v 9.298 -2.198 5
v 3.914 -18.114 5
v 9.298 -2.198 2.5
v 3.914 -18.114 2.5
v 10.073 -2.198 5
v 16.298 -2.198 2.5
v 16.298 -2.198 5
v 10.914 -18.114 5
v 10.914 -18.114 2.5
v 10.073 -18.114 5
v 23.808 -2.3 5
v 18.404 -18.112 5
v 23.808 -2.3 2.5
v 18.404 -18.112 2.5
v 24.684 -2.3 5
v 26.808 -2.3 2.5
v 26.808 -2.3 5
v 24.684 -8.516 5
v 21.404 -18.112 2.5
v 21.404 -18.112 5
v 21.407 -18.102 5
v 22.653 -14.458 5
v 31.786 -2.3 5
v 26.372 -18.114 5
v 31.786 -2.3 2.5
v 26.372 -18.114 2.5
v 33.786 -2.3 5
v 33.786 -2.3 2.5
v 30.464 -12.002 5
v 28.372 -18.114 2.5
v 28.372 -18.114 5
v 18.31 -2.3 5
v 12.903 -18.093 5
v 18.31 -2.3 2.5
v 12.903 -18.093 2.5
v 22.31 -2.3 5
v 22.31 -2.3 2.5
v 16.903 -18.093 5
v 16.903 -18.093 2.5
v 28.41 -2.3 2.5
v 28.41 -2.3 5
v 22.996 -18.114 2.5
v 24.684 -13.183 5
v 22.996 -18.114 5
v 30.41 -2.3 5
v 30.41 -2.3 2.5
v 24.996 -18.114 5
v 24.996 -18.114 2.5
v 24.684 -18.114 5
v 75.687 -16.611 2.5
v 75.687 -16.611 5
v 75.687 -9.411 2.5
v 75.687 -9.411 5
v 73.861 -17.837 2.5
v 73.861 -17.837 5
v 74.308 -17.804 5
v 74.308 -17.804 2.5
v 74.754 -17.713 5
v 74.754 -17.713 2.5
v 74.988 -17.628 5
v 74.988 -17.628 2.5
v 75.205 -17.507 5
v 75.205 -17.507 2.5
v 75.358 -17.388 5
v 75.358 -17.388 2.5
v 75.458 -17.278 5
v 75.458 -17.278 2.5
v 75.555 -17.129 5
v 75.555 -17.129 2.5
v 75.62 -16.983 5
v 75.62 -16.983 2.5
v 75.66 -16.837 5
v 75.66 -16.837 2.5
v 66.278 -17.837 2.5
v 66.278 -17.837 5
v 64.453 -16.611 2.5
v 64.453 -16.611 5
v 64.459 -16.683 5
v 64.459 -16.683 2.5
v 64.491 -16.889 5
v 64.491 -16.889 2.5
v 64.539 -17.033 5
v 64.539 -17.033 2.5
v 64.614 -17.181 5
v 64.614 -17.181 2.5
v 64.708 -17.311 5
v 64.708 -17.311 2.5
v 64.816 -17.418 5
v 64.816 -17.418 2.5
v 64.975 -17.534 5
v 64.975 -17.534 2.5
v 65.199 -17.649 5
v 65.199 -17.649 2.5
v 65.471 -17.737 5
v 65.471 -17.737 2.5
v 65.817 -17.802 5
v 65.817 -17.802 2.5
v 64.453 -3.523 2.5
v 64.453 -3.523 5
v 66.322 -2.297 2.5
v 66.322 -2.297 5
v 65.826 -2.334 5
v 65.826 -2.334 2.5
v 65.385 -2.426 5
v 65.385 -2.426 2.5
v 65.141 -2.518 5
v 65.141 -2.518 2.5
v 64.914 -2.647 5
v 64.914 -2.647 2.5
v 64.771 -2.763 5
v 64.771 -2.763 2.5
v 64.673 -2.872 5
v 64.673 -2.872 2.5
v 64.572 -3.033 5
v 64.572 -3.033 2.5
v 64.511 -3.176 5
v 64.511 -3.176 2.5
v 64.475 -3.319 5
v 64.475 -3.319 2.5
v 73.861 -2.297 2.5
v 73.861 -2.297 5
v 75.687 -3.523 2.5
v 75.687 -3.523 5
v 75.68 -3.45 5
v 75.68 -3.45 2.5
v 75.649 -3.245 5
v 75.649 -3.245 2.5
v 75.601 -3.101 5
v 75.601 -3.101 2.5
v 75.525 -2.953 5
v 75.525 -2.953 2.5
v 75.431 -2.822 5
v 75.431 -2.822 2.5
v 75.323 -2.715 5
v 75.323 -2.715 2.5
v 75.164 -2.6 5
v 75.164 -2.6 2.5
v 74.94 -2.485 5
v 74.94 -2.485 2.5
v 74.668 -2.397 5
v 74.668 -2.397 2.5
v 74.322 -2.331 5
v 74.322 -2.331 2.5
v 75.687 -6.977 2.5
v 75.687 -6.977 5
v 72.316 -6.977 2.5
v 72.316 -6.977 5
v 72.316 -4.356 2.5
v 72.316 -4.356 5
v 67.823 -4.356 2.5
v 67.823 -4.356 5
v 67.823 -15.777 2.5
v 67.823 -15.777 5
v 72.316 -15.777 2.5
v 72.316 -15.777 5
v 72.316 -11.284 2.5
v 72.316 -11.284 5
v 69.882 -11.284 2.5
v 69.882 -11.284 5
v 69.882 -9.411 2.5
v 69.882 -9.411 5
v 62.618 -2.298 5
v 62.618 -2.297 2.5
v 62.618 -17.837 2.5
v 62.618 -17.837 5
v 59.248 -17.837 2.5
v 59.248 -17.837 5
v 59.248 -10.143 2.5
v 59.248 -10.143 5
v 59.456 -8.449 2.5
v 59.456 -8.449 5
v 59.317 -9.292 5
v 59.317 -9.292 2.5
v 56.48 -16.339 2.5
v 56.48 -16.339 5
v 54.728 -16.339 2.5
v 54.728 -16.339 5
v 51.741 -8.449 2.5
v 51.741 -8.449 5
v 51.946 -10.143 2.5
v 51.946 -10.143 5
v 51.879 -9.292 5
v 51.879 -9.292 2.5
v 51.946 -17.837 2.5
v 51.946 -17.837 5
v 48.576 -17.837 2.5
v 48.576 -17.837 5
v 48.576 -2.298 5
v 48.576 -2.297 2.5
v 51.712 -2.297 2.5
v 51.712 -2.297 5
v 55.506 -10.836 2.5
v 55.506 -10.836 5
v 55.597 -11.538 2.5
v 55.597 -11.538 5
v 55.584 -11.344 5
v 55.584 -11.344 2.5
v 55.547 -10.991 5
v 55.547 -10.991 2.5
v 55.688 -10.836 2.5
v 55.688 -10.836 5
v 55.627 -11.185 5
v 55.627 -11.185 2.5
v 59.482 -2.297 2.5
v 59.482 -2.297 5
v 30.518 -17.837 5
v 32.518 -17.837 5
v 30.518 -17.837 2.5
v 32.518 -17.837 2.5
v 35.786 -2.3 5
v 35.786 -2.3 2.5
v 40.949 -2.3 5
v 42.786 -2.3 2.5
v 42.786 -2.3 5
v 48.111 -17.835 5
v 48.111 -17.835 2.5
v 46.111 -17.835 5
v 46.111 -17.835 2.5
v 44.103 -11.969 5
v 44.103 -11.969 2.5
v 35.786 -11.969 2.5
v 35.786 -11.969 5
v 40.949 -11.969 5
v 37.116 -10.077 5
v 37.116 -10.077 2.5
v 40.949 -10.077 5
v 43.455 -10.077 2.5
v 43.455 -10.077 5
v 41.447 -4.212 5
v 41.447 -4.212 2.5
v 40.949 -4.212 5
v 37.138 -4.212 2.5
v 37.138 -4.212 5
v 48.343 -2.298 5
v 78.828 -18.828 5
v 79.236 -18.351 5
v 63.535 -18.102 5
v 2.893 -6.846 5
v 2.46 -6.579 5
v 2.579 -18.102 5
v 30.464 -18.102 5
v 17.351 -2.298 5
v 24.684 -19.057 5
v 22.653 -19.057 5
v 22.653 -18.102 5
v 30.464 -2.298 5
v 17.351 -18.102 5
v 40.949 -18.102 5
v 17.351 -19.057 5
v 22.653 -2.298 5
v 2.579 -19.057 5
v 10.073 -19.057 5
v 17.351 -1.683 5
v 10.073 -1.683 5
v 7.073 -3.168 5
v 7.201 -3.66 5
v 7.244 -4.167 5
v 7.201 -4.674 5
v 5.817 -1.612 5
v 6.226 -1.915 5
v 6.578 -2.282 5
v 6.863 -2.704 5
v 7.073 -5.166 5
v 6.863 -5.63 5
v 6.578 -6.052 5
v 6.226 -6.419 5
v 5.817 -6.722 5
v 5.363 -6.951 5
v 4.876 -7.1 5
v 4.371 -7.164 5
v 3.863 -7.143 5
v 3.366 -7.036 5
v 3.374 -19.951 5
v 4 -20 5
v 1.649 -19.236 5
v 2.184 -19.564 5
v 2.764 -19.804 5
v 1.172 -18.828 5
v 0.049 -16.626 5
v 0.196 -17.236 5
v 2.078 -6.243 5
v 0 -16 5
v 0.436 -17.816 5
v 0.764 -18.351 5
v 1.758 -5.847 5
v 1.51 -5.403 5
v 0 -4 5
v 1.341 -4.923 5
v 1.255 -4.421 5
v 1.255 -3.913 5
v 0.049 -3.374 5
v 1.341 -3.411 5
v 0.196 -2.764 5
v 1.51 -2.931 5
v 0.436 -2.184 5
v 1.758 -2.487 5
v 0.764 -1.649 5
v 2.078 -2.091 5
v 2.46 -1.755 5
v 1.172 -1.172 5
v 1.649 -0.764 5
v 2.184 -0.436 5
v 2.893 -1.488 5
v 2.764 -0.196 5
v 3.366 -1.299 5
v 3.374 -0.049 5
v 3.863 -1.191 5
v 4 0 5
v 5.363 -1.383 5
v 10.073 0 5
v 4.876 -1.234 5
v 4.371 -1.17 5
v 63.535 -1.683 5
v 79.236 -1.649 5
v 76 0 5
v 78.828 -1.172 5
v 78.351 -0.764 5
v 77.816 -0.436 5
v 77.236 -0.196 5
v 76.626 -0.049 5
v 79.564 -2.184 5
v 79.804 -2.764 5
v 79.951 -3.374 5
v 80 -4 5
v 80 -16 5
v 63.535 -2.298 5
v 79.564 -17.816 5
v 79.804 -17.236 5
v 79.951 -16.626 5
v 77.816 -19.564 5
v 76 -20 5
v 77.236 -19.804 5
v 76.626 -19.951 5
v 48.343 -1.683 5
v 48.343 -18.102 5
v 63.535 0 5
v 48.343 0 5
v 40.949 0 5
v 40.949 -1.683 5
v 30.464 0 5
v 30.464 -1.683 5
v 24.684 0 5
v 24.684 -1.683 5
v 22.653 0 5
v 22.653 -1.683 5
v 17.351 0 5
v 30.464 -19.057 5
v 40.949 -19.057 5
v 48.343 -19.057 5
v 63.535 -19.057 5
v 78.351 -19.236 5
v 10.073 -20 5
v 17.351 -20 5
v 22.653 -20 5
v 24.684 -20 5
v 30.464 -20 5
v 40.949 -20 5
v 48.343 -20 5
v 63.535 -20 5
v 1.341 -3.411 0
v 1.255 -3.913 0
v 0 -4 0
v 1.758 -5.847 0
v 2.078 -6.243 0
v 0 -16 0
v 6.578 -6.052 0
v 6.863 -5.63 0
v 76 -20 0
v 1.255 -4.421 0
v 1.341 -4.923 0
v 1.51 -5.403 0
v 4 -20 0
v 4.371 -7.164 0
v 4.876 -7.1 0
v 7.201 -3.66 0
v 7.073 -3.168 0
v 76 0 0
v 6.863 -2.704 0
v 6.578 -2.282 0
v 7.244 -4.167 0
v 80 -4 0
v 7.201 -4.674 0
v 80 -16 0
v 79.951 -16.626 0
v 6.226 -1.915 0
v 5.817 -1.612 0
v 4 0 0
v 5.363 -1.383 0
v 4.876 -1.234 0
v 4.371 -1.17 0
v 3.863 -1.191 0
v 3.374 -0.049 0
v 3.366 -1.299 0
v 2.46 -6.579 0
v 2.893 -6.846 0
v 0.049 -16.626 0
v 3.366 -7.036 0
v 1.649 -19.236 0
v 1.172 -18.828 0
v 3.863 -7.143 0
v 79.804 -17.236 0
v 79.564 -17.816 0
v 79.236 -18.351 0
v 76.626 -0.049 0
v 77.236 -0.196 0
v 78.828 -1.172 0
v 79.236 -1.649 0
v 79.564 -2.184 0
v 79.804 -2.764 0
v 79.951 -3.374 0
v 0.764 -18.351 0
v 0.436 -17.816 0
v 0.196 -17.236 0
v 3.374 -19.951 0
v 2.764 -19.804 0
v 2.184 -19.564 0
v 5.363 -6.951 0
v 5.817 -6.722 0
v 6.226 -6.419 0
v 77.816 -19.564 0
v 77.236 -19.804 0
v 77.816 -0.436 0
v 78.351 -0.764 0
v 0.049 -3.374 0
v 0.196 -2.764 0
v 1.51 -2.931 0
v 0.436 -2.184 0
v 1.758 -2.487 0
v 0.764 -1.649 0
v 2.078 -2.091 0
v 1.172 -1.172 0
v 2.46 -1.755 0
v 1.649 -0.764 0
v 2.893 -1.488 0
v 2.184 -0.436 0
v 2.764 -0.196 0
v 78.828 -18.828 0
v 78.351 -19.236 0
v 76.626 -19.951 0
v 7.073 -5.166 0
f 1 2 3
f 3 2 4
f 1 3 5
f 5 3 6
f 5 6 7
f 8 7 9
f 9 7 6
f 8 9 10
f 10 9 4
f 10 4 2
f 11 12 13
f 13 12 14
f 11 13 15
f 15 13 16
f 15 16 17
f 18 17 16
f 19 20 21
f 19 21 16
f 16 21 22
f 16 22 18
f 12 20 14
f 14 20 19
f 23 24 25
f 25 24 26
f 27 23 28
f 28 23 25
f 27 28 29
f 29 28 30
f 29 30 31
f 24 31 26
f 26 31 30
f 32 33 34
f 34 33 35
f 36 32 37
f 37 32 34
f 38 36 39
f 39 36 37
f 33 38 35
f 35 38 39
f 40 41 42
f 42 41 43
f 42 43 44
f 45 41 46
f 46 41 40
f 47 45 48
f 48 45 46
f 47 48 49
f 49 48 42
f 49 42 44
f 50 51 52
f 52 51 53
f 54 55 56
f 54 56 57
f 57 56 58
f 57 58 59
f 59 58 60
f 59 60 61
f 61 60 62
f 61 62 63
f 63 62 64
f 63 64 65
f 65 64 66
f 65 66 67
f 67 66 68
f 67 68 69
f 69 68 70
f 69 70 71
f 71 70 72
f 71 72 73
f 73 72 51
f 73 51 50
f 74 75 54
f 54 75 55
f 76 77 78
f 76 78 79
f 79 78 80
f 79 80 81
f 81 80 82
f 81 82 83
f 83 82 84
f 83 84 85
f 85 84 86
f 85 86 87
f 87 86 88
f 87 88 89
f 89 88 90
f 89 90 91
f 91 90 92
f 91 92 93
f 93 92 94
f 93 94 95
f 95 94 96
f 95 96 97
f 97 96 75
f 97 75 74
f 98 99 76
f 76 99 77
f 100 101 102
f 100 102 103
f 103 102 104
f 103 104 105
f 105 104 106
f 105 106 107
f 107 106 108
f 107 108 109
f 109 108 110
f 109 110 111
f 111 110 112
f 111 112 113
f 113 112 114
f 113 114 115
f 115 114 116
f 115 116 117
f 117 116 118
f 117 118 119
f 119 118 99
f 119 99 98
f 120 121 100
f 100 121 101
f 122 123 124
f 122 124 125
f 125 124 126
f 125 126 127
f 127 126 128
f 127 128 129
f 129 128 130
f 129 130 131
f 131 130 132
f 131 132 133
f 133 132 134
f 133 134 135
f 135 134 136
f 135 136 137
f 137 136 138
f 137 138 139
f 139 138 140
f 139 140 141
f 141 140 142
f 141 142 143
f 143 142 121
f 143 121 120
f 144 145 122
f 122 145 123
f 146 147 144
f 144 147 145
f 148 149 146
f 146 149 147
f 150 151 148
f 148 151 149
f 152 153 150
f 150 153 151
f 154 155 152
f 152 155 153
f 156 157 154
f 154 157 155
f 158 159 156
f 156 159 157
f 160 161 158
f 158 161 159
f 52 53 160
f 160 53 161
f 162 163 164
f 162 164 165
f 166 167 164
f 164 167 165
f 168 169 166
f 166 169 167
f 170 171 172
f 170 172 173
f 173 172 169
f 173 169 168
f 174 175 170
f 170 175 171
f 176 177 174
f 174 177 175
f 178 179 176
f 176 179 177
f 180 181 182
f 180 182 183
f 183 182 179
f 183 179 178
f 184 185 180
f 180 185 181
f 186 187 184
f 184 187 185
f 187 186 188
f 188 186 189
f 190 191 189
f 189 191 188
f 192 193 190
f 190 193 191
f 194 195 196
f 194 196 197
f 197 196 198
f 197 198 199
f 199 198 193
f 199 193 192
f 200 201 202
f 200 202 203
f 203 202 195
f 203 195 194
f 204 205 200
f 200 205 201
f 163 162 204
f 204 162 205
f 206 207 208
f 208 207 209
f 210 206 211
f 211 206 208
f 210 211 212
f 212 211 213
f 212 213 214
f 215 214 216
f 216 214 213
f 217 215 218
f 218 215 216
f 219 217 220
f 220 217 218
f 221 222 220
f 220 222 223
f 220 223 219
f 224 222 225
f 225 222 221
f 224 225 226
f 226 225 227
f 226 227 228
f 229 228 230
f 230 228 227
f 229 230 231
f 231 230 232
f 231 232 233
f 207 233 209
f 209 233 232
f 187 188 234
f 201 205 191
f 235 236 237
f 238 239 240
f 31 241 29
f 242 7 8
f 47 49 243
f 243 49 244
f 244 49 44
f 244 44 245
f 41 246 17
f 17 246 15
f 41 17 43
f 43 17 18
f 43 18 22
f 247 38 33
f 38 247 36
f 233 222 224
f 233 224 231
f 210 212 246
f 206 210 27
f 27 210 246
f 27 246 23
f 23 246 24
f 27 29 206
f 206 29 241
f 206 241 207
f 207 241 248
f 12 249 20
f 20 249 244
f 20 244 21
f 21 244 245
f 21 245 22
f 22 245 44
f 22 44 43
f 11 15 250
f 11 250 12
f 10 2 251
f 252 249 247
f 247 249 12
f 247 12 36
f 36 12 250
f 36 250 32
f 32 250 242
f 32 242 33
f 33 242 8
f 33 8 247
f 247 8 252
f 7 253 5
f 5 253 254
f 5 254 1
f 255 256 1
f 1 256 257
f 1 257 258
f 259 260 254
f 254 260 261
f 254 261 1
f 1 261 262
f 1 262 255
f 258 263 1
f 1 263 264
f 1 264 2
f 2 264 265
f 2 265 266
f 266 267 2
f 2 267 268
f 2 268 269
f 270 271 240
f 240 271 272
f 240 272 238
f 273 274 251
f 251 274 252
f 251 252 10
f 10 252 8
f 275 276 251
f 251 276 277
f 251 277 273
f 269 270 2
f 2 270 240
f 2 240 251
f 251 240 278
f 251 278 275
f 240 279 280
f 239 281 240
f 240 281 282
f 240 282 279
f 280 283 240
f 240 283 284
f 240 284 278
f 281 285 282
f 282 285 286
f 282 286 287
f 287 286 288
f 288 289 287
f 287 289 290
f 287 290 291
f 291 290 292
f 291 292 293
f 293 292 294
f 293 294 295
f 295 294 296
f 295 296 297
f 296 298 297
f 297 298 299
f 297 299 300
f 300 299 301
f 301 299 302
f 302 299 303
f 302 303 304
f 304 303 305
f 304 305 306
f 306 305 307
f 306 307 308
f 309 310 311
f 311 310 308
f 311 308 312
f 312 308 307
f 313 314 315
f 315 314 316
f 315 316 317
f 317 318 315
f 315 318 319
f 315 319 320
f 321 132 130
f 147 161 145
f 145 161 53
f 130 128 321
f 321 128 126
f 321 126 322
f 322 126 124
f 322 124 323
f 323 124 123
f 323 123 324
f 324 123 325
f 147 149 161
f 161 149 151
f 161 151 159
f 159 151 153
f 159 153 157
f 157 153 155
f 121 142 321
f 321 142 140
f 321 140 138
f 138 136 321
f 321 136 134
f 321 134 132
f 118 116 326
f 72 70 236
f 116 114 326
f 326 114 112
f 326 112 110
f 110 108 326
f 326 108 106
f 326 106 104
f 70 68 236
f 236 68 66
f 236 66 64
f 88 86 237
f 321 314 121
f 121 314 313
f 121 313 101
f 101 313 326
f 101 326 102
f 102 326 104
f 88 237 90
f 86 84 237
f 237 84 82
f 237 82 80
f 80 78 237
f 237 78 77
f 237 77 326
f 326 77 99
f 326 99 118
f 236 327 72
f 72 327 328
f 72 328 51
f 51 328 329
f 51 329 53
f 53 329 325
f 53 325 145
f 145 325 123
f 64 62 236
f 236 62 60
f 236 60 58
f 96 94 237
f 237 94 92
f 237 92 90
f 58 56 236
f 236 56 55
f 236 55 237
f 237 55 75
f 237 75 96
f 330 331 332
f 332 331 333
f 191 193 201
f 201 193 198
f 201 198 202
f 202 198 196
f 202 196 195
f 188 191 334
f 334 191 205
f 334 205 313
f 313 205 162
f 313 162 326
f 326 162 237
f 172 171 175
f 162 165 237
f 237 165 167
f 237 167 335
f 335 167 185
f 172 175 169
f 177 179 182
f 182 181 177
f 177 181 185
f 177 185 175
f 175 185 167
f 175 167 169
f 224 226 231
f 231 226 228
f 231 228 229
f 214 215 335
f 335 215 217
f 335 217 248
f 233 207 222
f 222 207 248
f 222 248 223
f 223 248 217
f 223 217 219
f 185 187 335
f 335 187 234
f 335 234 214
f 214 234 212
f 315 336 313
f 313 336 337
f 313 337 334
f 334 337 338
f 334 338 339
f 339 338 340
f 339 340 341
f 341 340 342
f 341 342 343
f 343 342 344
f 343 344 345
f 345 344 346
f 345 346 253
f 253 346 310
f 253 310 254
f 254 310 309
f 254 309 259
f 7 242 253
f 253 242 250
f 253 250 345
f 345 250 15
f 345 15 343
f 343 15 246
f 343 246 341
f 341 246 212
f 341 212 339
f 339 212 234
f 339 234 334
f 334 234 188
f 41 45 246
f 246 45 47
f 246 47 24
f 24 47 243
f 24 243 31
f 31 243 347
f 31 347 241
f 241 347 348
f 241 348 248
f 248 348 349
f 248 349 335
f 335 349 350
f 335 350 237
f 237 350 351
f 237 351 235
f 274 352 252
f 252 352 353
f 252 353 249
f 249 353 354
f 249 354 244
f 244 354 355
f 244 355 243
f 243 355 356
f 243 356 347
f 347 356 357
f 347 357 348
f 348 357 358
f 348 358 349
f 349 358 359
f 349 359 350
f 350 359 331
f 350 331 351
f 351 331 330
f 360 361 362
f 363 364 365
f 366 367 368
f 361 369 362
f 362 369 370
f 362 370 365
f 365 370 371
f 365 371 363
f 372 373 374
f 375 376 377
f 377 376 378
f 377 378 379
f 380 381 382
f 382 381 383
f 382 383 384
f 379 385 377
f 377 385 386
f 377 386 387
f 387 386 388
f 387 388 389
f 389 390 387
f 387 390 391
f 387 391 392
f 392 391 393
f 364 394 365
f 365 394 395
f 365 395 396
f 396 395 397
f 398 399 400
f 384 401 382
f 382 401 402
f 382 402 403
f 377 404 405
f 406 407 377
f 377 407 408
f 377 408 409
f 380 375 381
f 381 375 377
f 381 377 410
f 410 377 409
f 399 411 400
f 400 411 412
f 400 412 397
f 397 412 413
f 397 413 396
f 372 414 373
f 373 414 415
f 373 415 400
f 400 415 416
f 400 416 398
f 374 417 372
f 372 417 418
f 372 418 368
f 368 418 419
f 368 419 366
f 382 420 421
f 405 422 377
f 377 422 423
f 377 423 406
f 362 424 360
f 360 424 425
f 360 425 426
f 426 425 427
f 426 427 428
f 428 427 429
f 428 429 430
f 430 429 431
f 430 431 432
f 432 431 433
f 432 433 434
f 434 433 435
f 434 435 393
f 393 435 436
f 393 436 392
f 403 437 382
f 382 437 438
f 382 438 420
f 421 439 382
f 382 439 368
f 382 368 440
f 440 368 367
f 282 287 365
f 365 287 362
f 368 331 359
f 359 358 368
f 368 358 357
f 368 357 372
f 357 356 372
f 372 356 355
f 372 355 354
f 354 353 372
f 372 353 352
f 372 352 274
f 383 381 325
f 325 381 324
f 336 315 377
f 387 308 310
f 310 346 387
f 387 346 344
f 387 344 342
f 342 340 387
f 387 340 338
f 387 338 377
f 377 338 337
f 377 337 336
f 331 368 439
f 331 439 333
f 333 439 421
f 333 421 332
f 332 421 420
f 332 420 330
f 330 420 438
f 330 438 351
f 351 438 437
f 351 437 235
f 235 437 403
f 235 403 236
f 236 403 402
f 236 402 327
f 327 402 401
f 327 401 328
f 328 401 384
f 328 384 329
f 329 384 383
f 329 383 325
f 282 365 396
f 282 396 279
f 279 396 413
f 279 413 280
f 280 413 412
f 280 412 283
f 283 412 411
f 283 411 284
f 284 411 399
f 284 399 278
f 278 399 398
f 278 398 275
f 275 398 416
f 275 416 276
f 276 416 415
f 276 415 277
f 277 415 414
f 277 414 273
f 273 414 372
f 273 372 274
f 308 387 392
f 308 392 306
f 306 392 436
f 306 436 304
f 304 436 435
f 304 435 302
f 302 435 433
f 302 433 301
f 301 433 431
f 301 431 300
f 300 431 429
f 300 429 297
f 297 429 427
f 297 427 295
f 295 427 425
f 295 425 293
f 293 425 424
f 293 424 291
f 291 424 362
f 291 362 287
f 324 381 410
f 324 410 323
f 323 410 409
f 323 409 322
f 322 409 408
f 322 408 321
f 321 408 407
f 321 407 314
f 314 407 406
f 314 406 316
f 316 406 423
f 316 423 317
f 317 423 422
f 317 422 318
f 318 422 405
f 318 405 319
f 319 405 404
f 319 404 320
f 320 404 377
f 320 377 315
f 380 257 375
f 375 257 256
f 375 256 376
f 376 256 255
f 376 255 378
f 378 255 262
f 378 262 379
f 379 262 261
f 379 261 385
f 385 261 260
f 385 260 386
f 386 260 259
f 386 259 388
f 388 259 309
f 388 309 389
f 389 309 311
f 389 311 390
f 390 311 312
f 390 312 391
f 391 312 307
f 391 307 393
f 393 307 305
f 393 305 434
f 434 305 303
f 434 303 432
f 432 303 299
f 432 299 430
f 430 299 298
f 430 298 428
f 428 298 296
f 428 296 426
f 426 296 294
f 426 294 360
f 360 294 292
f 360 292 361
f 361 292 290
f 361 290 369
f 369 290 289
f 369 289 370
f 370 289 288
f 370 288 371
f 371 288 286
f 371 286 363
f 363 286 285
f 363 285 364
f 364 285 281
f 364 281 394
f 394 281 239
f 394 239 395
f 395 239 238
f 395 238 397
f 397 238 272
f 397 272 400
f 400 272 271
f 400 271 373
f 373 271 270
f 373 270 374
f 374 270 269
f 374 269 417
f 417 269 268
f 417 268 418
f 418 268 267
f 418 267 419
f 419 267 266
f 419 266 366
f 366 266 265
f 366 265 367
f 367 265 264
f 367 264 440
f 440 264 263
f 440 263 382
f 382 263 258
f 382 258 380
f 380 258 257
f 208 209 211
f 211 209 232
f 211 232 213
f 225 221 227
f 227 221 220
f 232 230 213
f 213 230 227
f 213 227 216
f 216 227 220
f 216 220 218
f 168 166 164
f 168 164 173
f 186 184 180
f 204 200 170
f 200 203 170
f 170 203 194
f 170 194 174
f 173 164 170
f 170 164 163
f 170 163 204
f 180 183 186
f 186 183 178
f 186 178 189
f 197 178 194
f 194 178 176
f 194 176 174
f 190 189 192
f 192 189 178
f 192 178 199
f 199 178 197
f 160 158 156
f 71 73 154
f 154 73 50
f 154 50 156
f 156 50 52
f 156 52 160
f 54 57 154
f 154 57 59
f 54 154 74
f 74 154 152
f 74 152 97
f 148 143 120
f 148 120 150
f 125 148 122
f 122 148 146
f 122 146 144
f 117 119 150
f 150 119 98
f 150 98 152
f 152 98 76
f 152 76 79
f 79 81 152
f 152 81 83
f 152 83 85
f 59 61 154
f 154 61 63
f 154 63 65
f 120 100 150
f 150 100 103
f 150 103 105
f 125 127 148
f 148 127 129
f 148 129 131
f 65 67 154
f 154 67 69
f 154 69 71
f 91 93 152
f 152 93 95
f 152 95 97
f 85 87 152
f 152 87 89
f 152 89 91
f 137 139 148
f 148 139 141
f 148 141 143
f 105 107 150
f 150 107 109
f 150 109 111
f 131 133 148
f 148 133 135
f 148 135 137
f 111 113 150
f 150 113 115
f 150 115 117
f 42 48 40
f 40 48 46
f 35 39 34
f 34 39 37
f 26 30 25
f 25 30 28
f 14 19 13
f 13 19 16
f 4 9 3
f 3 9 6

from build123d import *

# Parameters (mm, degrees)
ESQUISSE1_W                  = 80
ESQUISSE1_H                  = 20
BOSS_EXTRU_1_DEPTH           = 5
CONG_1_R                     = 4
ENL_V_MAT_EXTRU_1_DEPTH      = 83.613558209
ENL_V_START                  = -5
ENL_V_MAT_EXTRU_2_DEPTH      = 5
ESQUISSE11_W                 = 13.611032385
ESQUISSE11_H                 = 17.64061434
BOSS_EXTRU_8_DEPTH           = 5
ENL_V_MAT_EXTRU_3_DEPTH      = 83.613558336
ENL_V_MAT_EXTRU_3_DEPTH_BACK = 83.613558336
ESQUISSE13_R                 = 3
ENL_V_MAT_EXTRU_4_DEPTH      = 33
BOSS_EXTRU_9_DEPTH           = 2.5


# Read off the part's stored shape, not the designer's step: Enlèv. mat.-Extru.2
with BuildPart() as part:
    # Esquisse1 → Boss.-Extru.1 (new body)
    with BuildSketch(Plane.XY):
        with Locations((40, -10)):
            Rectangle(ESQUISSE1_W, ESQUISSE1_H)
    extrude(amount=BOSS_EXTRU_1_DEPTH)

    # Congé1
    cong_1_edges = [part.edges().sort_by_distance(p)[0] for p in [
        (0, 0, 2.5),
        (80, 0, 2.5),
        (80, -20, 2.5),
        (0, -20, 2.5),
    ]]
    fillet(cong_1_edges, radius=CONG_1_R)

    # Esquisse2 → Enlèv. mat.-Extru.1 (cut, through all)
    with BuildSketch(Plane.XY.offset(5)):
        Polygon((28.410040172, -2.300084773), (30.410040172, -2.300084773), (24.995829866, -18.113699025), (22.995829866, -18.113699025), align=None)
        Polygon((9.298142424, -2.198086037), (16.298142424, -2.198086037), (10.914062948, -18.113699025), (3.914062948, -18.113699025), align=None)
        Polygon((18.309829725, -2.300084773), (22.309829725, -2.300084773), (16.902589817, -18.093340154), (12.902589817, -18.093340154), align=None)
        Polygon((23.808061727, -2.300084773), (26.808061727, -2.300084773), (21.404325417, -18.111661936), (18.404325417, -18.111661936), align=None)
        Polygon((31.786127586, -2.300084773), (33.786127586, -2.300084773), (28.371917279, -18.113699025), (26.371917279, -18.113699025), align=None)
    extrude(amount=-ENL_V_MAT_EXTRU_1_DEPTH, mode=Mode.SUBTRACT)

    # Enlèv. mat.-Extru.2 outline → Enlèv. mat.-Extru.2 (cut)
    # profile 1 of 3: a face of its own
    with BuildSketch(Plane.XY.offset(5).offset(ENL_V_START)):
        with BuildLine():
            add(Edge.make_bspline(
                [(75.686567024, -16.611023442), (75.678643784, -16.704663886), (75.663447013, -16.884266233), (75.563839443, -17.132408637), (75.415616385, -17.347383223), (75.204262037, -17.518269705), (74.945020643, -17.657920052), (74.629763147, -17.753299102), (74.263391467, -17.817731699), (74.000846179, -17.830167685), (73.861085096, -17.83678775)],
                knots=[0, 0, 0, 0, 0.114098337, 0.218840581, 0.322174175, 0.429434412, 0.547100708, 0.679564678, 0.829422238, 1, 1, 1, 1], degree=3))
            Line((75.686567024, -16.611023442), (75.686567024, -9.411486545))
            Line((75.686567024, -9.411486545), (69.882470639, -9.411486545))
            Line((69.882470639, -9.411486545), (69.882470639, -11.283775701))
            Line((69.882470639, -11.283775701), (72.316446542, -11.283775701))
            Line((72.316446542, -11.283775701), (72.316446542, -15.777269677))
            Line((72.316446542, -15.777269677), (67.822952566, -15.777269677))
            Line((67.822952566, -15.777269677), (67.822952566, -4.356305822))
            Line((67.822952566, -4.356305822), (72.316446542, -4.356305822))
            Line((72.316446542, -4.356305822), (72.316446542, -6.977510641))
            Line((72.316446542, -6.977510641), (75.686567024, -6.977510641))
            Line((75.686567024, -6.977510641), (75.686567024, -3.522552057))
            add(Edge.make_bspline(
                [(73.861085096, -2.29678775), (74.000846179, -2.303407815), (74.263391467, -2.3158438), (74.629763147, -2.380276397), (74.945020643, -2.475655447), (75.204262037, -2.615305794), (75.415616385, -2.786192276), (75.563839443, -3.001166862), (75.663447013, -3.249309266), (75.678643784, -3.428911613), (75.686567024, -3.522552057)],
                knots=[0, 0, 0, 0, 0.170577762, 0.320435322, 0.452899292, 0.570565588, 0.677825825, 0.781159419, 0.885901663, 1, 1, 1, 1], degree=3))
            Line((73.861085096, -2.29678775), (66.322195789, -2.29678775))
            add(Edge.make_bspline(
                [(64.452832084, -3.522552057), (64.460490101, -3.428813179), (64.475207603, -3.248661832), (64.578900626, -3.001012416), (64.72992953, -2.785012839), (64.947387079, -2.615412784), (65.212124175, -2.475706721), (65.534969931, -2.379572165), (65.910264022, -2.316247539), (66.179534857, -2.303527098), (66.322195789, -2.29678775)],
                knots=[0, 0, 0, 0, 0.112348161, 0.215915455, 0.318343111, 0.425762474, 0.543690884, 0.676356302, 0.828532073, 1, 1, 1, 1], degree=3))
            Line((64.452832084, -3.522552057), (64.452832084, -16.611023442))
            add(Edge.make_bspline(
                [(66.278314012, -17.83678775), (66.138552929, -17.830167685), (65.876007642, -17.817731699), (65.509635961, -17.753299102), (65.194378466, -17.657920052), (64.935137072, -17.518269705), (64.723782723, -17.347383223), (64.575559665, -17.132408637), (64.475952096, -16.884266233), (64.460755324, -16.704663886), (64.452832084, -16.611023442)],
                knots=[0, 0, 0, 0, 0.170577762, 0.320435322, 0.452899292, 0.570565588, 0.677825825, 0.781159419, 0.885901663, 1, 1, 1, 1], degree=3))
            Line((66.278314012, -17.83678775), (73.861085096, -17.83678775))
        make_face()
    # profile 2 of 3: a face of its own
    with BuildSketch(Plane.XY.offset(5).offset(ENL_V_START)):
        with BuildLine():
            add(Edge.make_bspline(
                [(59.247868229, -10.142849497), (59.250113416, -10.031576234), (59.255029992, -9.787906808), (59.301768342, -9.394005261), (59.364432817, -8.9400039), (59.423938248, -8.619443962), (59.455575307, -8.4490129)],
                knots=[0, 0, 0, 0, 0.195301478, 0.427676852, 0.695714808, 1, 1, 1, 1], degree=3))
            Line((59.247868229, -10.142849497), (59.247868229, -17.83678775))
            Line((59.247868229, -17.83678775), (62.617988711, -17.83678775))
            Line((62.617988711, -17.83678775), (62.617988711, -2.29678775))
            Line((62.617988711, -2.29678775), (59.481904374, -2.29678775))
            Line((59.481904374, -2.29678775), (55.68759338, -10.836181575))
            add(Edge.make_bspline(
                [(55.596904374, -11.538290009), (55.59815665, -11.492405908), (55.600881716, -11.392557927), (55.62162629, -11.229918497), (55.645376833, -11.040932864), (55.672949182, -10.907206292), (55.68759338, -10.836181575)],
                knots=[0, 0, 0, 0, 0.19413449, 0.422454333, 0.693254547, 1, 1, 1, 1], degree=3))
            add(Edge.make_bspline(
                [(55.506215368, -10.836181575), (55.516865461, -10.868148772), (55.54346006, -10.947974815), (55.561126156, -11.099283482), (55.582536457, -11.300899182), (55.59176432, -11.45336457), (55.596904374, -11.538290009)],
                knots=[0, 0, 0, 0, 0.142095852, 0.354830918, 0.640631437, 1, 1, 1, 1], degree=3))
            Line((55.506215368, -10.836181575), (51.711904374, -2.29678775))
            Line((51.711904374, -2.29678775), (48.575820036, -2.29678775))
            Line((48.575820036, -2.29678775), (48.575820036, -17.83678775))
            Line((48.575820036, -17.83678775), (51.945940518, -17.83678775))
            Line((51.945940518, -17.83678775), (51.945940518, -10.142849497))
            add(Edge.make_bspline(
                [(51.741158892, -8.4490129), (51.77262663, -8.62239324), (51.831532725, -8.946952903), (51.895555168, -9.402629403), (51.938009232, -9.793916754), (51.94345609, -10.033548389), (51.945940518, -10.142849497)],
                knots=[0, 0, 0, 0, 0.309420385, 0.579220093, 0.808073296, 1, 1, 1, 1], degree=3))
            Line((51.741158892, -8.4490129), (54.728045187, -16.338956424))
            Line((54.728045187, -16.338956424), (56.480390819, -16.338956424))
            Line((56.480390819, -16.338956424), (59.455575307, -8.4490129))
        make_face()
    # profile 3 of 3: a face of its own
    with BuildSketch(Plane.XY.offset(5).offset(ENL_V_START)):
        Polygon((44.119771843, -17.83678775), (47.489892325, -17.83678775), (43.019801964, -2.29678775), (39.439048952, -2.29678775), (34.945554976, -17.795831424), (34.945554976, -17.83678775), (38.315675458, -17.83678775), (39.023634795, -15.028354015), (43.41766341, -15.028354015), align=None)
        Polygon((41.217723651, -5.921422539), (42.923262054, -12.968835942), (39.488781633, -12.968835942), align=None, mode=Mode.SUBTRACT)
    extrude(amount=ENL_V_MAT_EXTRU_2_DEPTH, mode=Mode.SUBTRACT)

    # Esquisse11 → Boss.-Extru.8 (add)
    with BuildSketch(Plane.XY.offset(5)):
        with Locations((41.097921838, -10.121676789)):
            Rectangle(ESQUISSE11_W, ESQUISSE11_H)
    extrude(amount=-BOSS_EXTRU_8_DEPTH)

    # Esquisse12 → Enlèv. mat.-Extru.3 (cut, two sides: drawn at the far end of the back side and taken through both)
    with BuildSketch(Plane.XY.offset(5).offset(-ENL_V_MAT_EXTRU_3_DEPTH_BACK)):
        Polygon((35.786127586, -2.300084773), (42.786127586, -2.300084773), (48.111179633, -17.834694794), (46.111179633, -17.834694794), (44.102998893, -11.969278829), (35.786127586, -11.969278829), (37.115967439, -10.077108111), (43.455164056, -10.077108111), (41.446983316, -4.211692145), (37.138004335, -4.211692145), (32.518467193, -17.83678775), (30.518467193, -17.83678775), align=None)
    extrude(amount=ENL_V_MAT_EXTRU_3_DEPTH + ENL_V_MAT_EXTRU_3_DEPTH_BACK, mode=Mode.SUBTRACT)

    # Esquisse13 → Enlèv. mat.-Extru.4 (cut)
    with BuildSketch(Plane.XY.offset(5)):
        with Locations((4.24401363, -4.167068495)):
            Circle(ESQUISSE13_R)
    extrude(amount=-ENL_V_MAT_EXTRU_4_DEPTH, mode=Mode.SUBTRACT)

    # Esquisse14 → Boss.-Extru.9 (add)
    with BuildSketch(Plane(origin=(0, 0, 0), x_dir=(-1, 0, 0), z_dir=(0, 0, -1))):
        Polygon((-76.993137328, -1.775197305), (-76.993137328, -18.151298047), (-3.246627444, -18.151298047), (-8.832660873, -1.775197305), align=None)
    extrude(amount=-BOSS_EXTRU_9_DEPTH)


solid = part.part
